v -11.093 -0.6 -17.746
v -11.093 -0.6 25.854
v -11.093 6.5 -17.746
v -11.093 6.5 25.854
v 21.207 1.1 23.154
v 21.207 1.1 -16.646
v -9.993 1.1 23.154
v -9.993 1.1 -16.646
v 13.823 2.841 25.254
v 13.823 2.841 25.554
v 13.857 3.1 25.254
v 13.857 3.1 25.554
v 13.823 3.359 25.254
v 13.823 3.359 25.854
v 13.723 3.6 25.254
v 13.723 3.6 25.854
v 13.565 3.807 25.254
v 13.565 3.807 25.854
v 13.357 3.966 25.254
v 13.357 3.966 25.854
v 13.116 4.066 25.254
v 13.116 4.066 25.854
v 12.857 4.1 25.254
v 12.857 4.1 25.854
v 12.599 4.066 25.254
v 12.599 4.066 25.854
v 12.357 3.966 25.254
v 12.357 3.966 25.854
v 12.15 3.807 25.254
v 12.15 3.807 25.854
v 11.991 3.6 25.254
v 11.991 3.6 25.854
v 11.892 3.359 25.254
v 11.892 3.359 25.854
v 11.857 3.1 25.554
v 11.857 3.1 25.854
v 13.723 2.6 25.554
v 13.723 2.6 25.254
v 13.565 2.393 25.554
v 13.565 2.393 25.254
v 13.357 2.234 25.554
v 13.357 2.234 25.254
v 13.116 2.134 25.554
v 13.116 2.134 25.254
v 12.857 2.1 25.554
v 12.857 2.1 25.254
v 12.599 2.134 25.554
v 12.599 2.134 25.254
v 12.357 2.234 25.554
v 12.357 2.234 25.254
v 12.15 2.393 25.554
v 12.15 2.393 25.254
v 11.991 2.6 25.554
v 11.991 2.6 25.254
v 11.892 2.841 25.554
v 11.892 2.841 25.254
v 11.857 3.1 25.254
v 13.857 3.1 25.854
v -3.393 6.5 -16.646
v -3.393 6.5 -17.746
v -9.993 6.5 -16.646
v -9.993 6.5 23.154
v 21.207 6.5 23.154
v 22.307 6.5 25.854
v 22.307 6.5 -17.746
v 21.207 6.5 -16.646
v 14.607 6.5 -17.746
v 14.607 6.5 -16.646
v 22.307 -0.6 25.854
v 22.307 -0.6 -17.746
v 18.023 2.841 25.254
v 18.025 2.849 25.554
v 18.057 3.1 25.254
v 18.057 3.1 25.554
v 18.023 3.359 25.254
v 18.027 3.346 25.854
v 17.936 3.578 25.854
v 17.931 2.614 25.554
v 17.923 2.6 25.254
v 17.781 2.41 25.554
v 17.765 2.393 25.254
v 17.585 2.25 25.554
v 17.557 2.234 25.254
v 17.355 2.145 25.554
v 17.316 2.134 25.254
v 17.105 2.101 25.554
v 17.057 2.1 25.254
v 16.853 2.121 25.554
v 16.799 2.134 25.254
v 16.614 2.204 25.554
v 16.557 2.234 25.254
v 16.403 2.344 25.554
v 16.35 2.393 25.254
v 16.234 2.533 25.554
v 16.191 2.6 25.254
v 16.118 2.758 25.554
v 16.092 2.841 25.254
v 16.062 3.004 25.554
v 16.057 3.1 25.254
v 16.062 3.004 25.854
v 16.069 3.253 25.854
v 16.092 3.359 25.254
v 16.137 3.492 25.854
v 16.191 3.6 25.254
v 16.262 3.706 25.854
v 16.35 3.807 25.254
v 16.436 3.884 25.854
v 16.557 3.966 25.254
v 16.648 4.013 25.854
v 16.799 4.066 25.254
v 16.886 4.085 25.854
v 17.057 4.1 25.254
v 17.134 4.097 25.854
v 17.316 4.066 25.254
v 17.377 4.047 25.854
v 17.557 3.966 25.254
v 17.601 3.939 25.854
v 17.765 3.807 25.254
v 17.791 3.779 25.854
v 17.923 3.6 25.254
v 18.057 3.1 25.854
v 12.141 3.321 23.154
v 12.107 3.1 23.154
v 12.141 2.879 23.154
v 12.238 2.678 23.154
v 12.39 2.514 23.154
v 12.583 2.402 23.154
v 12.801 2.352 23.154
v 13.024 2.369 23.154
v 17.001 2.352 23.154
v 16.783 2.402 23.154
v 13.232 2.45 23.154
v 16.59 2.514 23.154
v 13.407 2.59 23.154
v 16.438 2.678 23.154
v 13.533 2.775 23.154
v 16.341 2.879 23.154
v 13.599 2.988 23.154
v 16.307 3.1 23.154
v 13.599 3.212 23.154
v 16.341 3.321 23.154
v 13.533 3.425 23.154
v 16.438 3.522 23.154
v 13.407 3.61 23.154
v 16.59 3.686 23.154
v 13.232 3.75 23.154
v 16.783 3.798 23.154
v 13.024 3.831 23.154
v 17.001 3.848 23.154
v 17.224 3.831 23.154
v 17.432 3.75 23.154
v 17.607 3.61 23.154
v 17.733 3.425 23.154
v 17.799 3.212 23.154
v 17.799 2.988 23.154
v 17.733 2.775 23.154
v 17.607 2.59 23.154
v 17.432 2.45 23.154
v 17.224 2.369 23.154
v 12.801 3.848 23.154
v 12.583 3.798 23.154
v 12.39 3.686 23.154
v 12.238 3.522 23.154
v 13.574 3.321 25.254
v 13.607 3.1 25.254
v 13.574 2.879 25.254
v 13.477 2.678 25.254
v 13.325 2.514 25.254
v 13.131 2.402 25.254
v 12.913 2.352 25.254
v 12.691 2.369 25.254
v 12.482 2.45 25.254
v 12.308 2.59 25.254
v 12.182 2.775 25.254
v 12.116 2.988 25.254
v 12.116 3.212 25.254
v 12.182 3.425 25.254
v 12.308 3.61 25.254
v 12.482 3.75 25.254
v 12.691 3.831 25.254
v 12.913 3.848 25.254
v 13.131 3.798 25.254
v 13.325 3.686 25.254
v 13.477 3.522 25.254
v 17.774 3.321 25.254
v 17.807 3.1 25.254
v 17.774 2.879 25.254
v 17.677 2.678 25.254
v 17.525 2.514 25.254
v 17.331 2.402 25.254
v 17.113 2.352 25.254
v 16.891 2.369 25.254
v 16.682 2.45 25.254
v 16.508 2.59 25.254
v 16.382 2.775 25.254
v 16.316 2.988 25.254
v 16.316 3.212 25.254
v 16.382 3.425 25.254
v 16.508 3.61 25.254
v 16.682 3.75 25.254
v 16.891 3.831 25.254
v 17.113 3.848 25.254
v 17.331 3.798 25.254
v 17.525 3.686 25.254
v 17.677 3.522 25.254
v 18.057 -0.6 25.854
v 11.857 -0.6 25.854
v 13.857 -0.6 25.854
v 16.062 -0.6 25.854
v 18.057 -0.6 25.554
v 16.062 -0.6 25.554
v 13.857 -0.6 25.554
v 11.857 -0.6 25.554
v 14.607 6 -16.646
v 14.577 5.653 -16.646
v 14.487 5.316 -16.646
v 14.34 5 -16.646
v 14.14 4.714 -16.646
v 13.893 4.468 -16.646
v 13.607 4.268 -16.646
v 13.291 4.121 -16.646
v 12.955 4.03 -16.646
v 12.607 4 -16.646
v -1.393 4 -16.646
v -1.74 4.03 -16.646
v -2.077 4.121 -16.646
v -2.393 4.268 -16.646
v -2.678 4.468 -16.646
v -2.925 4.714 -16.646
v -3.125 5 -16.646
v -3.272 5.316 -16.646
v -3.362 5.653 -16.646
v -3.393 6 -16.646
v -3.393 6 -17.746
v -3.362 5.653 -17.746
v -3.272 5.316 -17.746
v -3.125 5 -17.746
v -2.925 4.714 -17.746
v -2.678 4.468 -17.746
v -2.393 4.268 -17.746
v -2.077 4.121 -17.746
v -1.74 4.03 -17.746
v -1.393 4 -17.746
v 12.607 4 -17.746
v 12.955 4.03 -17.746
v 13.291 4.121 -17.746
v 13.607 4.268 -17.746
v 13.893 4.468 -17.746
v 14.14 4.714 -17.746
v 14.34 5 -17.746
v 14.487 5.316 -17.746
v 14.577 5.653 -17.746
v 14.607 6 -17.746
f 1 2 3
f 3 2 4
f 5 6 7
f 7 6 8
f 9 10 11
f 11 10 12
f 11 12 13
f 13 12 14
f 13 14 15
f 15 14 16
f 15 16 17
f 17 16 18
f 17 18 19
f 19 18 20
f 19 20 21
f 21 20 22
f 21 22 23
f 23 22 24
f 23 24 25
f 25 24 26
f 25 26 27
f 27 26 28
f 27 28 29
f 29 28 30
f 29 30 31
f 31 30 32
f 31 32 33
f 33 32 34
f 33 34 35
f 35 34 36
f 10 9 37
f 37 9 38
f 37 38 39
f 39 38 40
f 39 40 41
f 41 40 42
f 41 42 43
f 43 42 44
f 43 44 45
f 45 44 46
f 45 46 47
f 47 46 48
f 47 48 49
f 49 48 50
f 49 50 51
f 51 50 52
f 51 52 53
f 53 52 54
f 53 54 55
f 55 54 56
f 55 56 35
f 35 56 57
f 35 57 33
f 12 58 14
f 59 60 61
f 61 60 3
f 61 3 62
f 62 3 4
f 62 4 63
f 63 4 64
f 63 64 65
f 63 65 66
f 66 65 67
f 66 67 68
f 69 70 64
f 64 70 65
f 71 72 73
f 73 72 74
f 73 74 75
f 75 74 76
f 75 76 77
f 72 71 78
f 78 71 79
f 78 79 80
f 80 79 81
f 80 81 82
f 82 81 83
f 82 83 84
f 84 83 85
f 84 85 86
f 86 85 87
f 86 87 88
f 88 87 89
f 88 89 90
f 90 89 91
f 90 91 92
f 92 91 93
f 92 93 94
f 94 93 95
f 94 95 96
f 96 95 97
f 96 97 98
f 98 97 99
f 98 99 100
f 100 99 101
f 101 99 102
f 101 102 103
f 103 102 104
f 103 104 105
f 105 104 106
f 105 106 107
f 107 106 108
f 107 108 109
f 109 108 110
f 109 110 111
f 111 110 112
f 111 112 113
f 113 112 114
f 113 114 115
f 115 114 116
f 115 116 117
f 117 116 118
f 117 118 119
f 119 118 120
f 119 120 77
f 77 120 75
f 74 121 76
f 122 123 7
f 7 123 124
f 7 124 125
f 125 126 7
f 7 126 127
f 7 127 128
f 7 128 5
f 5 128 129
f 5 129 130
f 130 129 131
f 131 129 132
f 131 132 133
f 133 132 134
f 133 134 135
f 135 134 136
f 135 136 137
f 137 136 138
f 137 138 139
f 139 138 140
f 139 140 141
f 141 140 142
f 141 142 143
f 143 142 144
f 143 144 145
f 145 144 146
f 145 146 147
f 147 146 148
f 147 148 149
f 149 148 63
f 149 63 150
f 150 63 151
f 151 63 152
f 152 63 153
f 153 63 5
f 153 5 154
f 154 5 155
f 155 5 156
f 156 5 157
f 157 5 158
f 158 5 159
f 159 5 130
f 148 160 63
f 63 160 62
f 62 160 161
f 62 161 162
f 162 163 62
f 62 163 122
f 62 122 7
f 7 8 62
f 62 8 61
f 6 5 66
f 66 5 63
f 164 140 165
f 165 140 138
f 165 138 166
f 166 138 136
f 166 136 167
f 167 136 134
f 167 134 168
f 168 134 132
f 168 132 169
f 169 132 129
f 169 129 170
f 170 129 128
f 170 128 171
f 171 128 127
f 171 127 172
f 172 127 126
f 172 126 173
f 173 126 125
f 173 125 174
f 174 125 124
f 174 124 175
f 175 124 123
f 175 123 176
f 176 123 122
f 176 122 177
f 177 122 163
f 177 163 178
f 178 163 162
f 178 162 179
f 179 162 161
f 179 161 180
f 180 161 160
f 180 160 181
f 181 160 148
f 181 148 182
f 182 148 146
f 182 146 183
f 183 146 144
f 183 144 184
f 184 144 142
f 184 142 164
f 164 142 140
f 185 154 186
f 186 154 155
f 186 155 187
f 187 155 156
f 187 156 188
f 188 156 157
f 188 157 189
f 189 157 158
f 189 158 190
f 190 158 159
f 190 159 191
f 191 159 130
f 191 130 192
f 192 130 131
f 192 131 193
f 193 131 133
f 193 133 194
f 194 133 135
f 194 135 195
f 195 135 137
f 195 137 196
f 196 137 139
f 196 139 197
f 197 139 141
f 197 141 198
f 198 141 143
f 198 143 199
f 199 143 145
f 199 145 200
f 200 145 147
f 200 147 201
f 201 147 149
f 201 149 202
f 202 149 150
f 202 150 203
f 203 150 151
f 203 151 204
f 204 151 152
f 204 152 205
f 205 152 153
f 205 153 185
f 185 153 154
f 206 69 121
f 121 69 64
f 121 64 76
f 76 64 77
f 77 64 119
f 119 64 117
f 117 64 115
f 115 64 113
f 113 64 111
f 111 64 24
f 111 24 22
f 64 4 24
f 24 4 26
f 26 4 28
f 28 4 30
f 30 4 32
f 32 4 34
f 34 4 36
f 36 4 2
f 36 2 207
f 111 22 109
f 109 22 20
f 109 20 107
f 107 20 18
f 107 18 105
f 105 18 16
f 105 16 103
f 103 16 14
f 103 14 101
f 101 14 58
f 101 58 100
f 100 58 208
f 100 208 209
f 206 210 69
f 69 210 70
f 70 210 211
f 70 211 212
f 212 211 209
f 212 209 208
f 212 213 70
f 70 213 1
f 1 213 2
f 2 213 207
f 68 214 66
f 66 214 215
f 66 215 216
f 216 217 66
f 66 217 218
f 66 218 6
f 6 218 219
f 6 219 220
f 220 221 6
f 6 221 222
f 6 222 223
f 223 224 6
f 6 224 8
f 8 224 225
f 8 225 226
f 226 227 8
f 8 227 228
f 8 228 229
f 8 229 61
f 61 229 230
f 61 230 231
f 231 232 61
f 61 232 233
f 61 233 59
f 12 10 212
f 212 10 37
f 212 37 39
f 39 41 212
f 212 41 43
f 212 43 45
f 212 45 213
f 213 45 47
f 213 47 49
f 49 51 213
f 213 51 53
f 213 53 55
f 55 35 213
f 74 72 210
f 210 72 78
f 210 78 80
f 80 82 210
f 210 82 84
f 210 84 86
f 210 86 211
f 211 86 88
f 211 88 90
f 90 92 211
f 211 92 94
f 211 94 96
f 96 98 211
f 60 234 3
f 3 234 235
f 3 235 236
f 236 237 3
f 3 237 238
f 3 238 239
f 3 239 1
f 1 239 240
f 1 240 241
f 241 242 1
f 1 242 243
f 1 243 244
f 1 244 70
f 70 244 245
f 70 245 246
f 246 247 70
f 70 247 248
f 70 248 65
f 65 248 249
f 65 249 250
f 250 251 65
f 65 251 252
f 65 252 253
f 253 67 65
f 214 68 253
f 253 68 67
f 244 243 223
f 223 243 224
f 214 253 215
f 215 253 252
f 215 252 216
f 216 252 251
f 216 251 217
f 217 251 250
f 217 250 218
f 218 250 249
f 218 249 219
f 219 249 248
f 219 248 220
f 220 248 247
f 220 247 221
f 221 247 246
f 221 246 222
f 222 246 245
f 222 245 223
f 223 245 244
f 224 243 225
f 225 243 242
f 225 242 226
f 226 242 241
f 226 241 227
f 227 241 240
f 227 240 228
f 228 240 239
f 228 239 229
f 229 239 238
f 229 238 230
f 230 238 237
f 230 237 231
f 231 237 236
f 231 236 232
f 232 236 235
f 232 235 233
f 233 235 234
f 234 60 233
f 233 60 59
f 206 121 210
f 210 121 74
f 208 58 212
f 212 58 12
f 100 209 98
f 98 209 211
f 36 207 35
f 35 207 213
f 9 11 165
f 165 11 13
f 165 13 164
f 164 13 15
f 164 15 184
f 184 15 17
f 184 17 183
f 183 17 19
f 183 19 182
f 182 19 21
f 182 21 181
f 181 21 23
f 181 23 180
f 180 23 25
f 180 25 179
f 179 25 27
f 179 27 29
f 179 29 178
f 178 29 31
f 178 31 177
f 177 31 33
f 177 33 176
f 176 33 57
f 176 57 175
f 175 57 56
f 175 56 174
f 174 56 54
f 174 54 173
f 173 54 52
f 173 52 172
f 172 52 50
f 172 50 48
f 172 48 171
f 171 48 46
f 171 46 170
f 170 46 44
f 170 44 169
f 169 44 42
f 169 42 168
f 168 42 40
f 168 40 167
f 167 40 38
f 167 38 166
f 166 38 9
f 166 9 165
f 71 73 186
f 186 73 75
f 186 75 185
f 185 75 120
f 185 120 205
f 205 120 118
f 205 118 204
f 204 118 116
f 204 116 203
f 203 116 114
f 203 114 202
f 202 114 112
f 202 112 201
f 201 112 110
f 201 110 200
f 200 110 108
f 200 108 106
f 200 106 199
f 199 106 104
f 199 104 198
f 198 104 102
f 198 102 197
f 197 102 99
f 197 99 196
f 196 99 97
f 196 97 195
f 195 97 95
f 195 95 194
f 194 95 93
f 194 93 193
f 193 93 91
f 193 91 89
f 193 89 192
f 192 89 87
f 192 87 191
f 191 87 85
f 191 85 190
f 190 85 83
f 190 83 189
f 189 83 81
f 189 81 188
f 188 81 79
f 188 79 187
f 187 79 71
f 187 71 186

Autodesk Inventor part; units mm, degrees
ref_plane "YZ Plane" through (0, 0, 0) normal (1, 0, 0) x (0, 1, 0)
ref_plane "XZ Plane" through (0, 0, 0) normal (0, 1, 0) x (-1, 0, 0)
ref_plane "XY Plane" through (0, 0, 0) normal (0, 0, 1) x (1, 0, 0)
sketch "Sketch2" plane through (0, 0, 0) normal (0, 1, 0) x (-1, 0, 0)
  line L0 (11.092548, -17.745585) -> (-22.307452, -17.745585)
  line L1 (-22.307452, -17.745585) -> (-22.307452, 24.254415)
  line L2 (-22.307452, 24.254415) -> (11.092548, 24.254415)
  line L3 (11.092548, 24.254415) -> (11.092548, -17.745585)
  point P0 (0, 0)
  dimension "d2" = 42
  dimension "d3" = 33.4
sketch "Sketch2 outline for Extrusion1" plane through (0, 0, 0) normal (0, 1, 0) x (-1, 0, 0)
  line L0 (11.092548, -17.745585) -> (11.092548, 24.254415)
  line L1 (-22.307452, -17.745585) -> (11.092548, -17.745585)
  line L2 (-22.307452, 24.254415) -> (-22.307452, -17.745585)
  line L3 (11.092548, 24.254415) -> (-22.307452, 24.254415)
extrude "Extrusion1" add sketch "Sketch2 outline for Extrusion1" along normal blind 6
sketch "Sketch3" plane through (0, 6, 0) normal (0, 1, 0) x (1, 0, 0)
  line L0 (-9.992548, 16.645585) -> (21.207452, 16.645585)
  line L1 (21.207452, 16.645585) -> (21.207452, -23.154415)
  line L2 (21.207452, -23.154415) -> (-9.992548, -23.154415)
  line L3 (-9.992548, -23.154415) -> (-9.992548, 16.645585)
  line L4 (22.307452, 17.745585) -> (-11.092548, 17.745585)
  line L5 (-11.092548, 17.745585) -> (-11.092548, -24.254415)
  line L6 (22.307452, -24.254415) -> (22.307452, 17.745585)
  line L7 (-11.092548, -24.254415) -> (22.307452, -24.254415)
  point P0 (0, 0)
  dimension "d6" = 1.1
  dimension "d7" = 1.1
  dimension "d8" = 1.1
  dimension "d9" = 1.1
  dimension "d10" = 39.8
sketch "Sketch3 outline for Extrusion2" plane through (0, 6, 0) normal (0, 1, 0) x (1, 0, 0)
  line L0 (-9.992548, 16.645585) -> (-9.992548, -23.154415)
  line L1 (21.207452, 16.645585) -> (-9.992548, 16.645585)
  line L2 (21.207452, -23.154415) -> (21.207452, 16.645585)
  line L3 (-9.992548, -23.154415) -> (21.207452, -23.154415)
extrude "Extrusion2" cut sketch "Sketch3 outline for Extrusion2" against normal blind 4.9
sketch "Sketch4" plane through (0, 0, 0) normal (0, -1, 0) x (1, 0, 0)
  line L0 (22.307452, -17.745585) -> (-11.092548, -17.745585)
  line L1 (-11.092548, -17.745585) -> (-11.092548, 24.254415)
  line L2 (22.307452, -17.745585) -> (-11.092548, -17.745585)
  line L3 (-11.092548, -17.745585) -> (-11.092548, 24.254415)
  line L4 (-11.092548, 24.254415) -> (22.307452, 24.254415)
  line L5 (22.307452, 24.254415) -> (22.307452, -17.745585)
  point P0 (0, 0)
sketch "Sketch4 outline for Extrusion3" plane through (0, 0, 0) normal (0, -1, 0) x (1, 0, 0)
  line L0 (22.307452, -17.745585) -> (22.307452, 24.254415)
  line L1 (-11.092548, -17.745585) -> (22.307452, -17.745585)
  line L2 (-11.092548, 24.254415) -> (-11.092548, -17.745585)
  line L3 (22.307452, 24.254415) -> (-11.092548, 24.254415)
extrude "Extrusion3" add sketch "Sketch4 outline for Extrusion3" along normal blind 0.6
sketch "Sketch5" plane through (-11.092548, 6, 24.254415) normal (0, 0, 1) x (1, 0, 0)
  line L0 (33.4, -6.6) -> (33.4, 0) projected
  line L1 (33.4, -6.6) -> (0, -6.6)
  line L2 (0, -6.6) -> (0, -2.5)
  line L3 (0, -2.5) -> (33.4, -2.5)
  line L4 (33.4, -2.5) -> (33.4, -6.6)
  point P0 (11.092548, -6)
  point P1 (33.4, -2.5)
sketch "Sketch5 outline for Extrusion4" plane through (-11.092548, 6, 24.254415) normal (0, 0, 1) x (1, 0, 0)
  line L0 (33.4, -2.5) -> (0, -2.5)
  line L1 (33.4, -6.6) -> (33.4, -2.5)
  line L2 (0, -6.6) -> (33.4, -6.6)
  line L3 (0, -2.5) -> (0, -6.6)
extrude "Extrusion4" add sketch "Sketch5 outline for Extrusion4" along normal blind 3
sketch "Sketch6" plane through (21.207452, 6, 23.154415) normal (0, 0, -1) x (-1, 0, 0)
  line L0 (3.6, -0.9) -> (4.9, -0.9)
  line L1 (4.9, -0.9) -> (4.9, -3.9)
  line L2 (4.9, -3.9) -> (3.6, -3.9)
  line L3 (3.6, -3.9) -> (3.6, -0.9)
  line L4 (0, -4.9) -> (31.2, -4.9) projected
  line L5 (5.6, -0.9) -> (6.9, -0.9)
  line L6 (6.9, -0.9) -> (6.9, -3.9)
  line L7 (6.9, -3.9) -> (5.6, -3.9)
  line L8 (5.6, -3.9) -> (5.6, -0.9)
  line L9 (7.6, -0.9) -> (8.9, -0.9)
  line L10 (8.9, -0.9) -> (8.9, -3.9)
  line L11 (8.9, -3.9) -> (7.6, -3.9)
  line L12 (7.6, -3.9) -> (7.6, -0.9)
  point P0 (21.207452, -6)
  point P1 (0, 0)
  dimension "d17" = 3
  dimension "d18" = 1.3
  dimension "d19" = 3.6
  dimension "d20" = 1
  dimension "d23" = 3
  dimension "d24" = 1.3
  dimension "d25" = 3
  dimension "d26" = 1.3
  dimension "d27" = 1
  dimension "d28" = 1
  dimension "d29" = 0.7
  dimension "d30" = 0.7
sketch "Sketch7" plane through (-11.092548, 3.5, 24.254415) normal (0, 1, 0) x (1, 0, 0)
  line L0 (0, 0) -> (33.4, 0) projected
  line L1 (0, 42) -> (0, -3) projected
  line L2 (33.4, 0) -> (0, 0)
  line L3 (0, 0) -> (0, -3)
  line L4 (0, -3) -> (33.4, -3)
  line L5 (33.4, -3) -> (33.4, 0)
  point P0 (11.092548, 24.254415)
sketch "Sketch7 outline for Extrusion5" plane through (-11.092548, 3.5, 24.254415) normal (0, 1, 0) x (1, 0, 0)
  line L0 (33.4, -3) -> (33.4, 0)
  line L1 (0, -3) -> (33.4, -3)
  line L2 (0, 0) -> (0, -3)
  line L3 (33.4, 0) -> (0, 0)
extrude "Extrusion5" add sketch "Sketch7 outline for Extrusion5" along normal blind 2.5
sketch "Sketch6 outline for Extrusion6" plane through (21.207452, 6, 23.154415) normal (0, 0, -1) x (-1, 0, 0)
  line L0 (7.6, -0.9) -> (7.6, -3.9)
  line L1 (8.9, -0.9) -> (7.6, -0.9)
  line L2 (8.9, -3.9) -> (8.9, -0.9)
  line L3 (7.6, -3.9) -> (8.9, -3.9)
  line L4 (5.6, -0.9) -> (5.6, -3.9)
  line L5 (6.9, -0.9) -> (5.6, -0.9)
  line L6 (6.9, -3.9) -> (6.9, -0.9)
  line L7 (5.6, -3.9) -> (6.9, -3.9)
  line L8 (3.6, -0.9) -> (3.6, -3.9)
  line L9 (4.9, -0.9) -> (3.6, -0.9)
  line L10 (4.9, -3.9) -> (4.9, -0.9)
  line L11 (3.6, -3.9) -> (4.9, -3.9)
extrude "Extrusion6" cut sketch "Sketch6 outline for Extrusion6" against normal through all
sketch "Sketch8" plane through (0, 6, 0) normal (0, 1, 0) x (1, 0, 0)
  point P0 (0, 0)
sketch "Sketch9" plane through (16.307452, 2.1, 23.154415) normal (0, 1, 0) x (1, 0, 0)
  line L0 (1.3, 0) -> (1.3, -4.1)
  line L1 (0, 0) -> (0, -4.1)
  line L2 (1.3, -2.3) -> (0, -2.3)
  line L3 (0, -2.3) -> (0, -2)
  line L4 (0, -2) -> (1.3, -2)
  line L5 (1.3, -2) -> (1.3, -2.3)
  line L6 (0, 0) -> (1.3, 0)
  line L7 (-0.7, -2.311138) -> (-2, -2.311138)
  line L8 (-2, -2.311138) -> (-2, -2.011138)
  line L9 (-2, -2.011138) -> (-0.7, -2.011138)
  line L10 (-0.7, -2.011138) -> (-0.7, -2.311138)
  line L11 (-0.7, 0) -> (-0.7, -4.1)
  line L12 (-2, 0) -> (-0.7, 0)
  line L13 (-2.7, -2.3) -> (-4, -2.3)
  line L14 (-4, -2) -> (-2.7, -2)
  line L15 (-2.7, -2) -> (-2.7, -2.3)
  line L16 (-4, -2.3) -> (-4, -2)
  line L17 (-4, 0) -> (-2.7, 0)
  point P0 (-16.307452, 23.154415)
  point P1 (1.3, -2)
  point P2 (0, -2.3)
  dimension "d33" = 0.3
  dimension "d34" = 2
  dimension "d35" = 0.3
  dimension "d36" = 1.3
  dimension "d37" = 0
  dimension "d38" = 2.01114
  dimension "d39" = 0.3
  dimension "d40" = 1.3
  dimension "d41" = 0
  dimension "d42" = 2
sketch "Sketch9 outline for Extrusion7" plane through (16.307452, 2.1, 23.154415) normal (0, 1, 0) x (1, 0, 0)
  line L0 (-4, -2) -> (-4, -2.3)
  line L1 (-2.7, -2) -> (-4, -2)
  line L2 (-2.7, -2.3) -> (-2.7, -2)
  line L3 (-4, -2.3) -> (-2.7, -2.3)
  line L4 (-2, -2.011138) -> (-2, -2.311138)
  line L5 (-0.7, -2.011138) -> (-2, -2.011138)
  line L6 (-0.7, -2.311138) -> (-0.7, -2.011138)
  line L7 (-2, -2.311138) -> (-0.7, -2.311138)
  line L8 (1.3, -2) -> (0, -2)
  line L9 (1.3, -2.3) -> (1.3, -2)
  line L10 (0, -2.3) -> (1.3, -2.3)
  line L11 (0, -2) -> (0, -2.3)
extrude "Extrusion7" add sketch "Sketch9 outline for Extrusion7" along normal up to surface (3.9 mm away)
sketch "Sketch10" plane through (0, 6, 0) normal (0, 1, 0) x (1, 0, 0)
  line L0 (17.607452, -25.654415) -> (16.307452, -25.654415)
  line L1 (16.307452, -25.654415) -> (16.307452, -24.654415)
  line L2 (16.307452, -24.654415) -> (17.607452, -24.654415)
  line L3 (17.607452, -24.654415) -> (17.607452, -25.654415)
  line L4 (21.207452, -23.154415) -> (-9.992548, -23.154415)
  line L5 (13.607452, -25.654415) -> (12.307452, -25.654415)
  line L6 (12.307452, -25.654415) -> (12.307452, -24.654415)
  line L7 (12.307452, -24.654415) -> (13.607452, -24.654415)
  line L8 (13.607452, -24.654415) -> (13.607452, -25.654415)
  line L9 (15.607452, -25.654415) -> (14.307452, -25.654415)
  line L10 (14.307452, -25.654415) -> (14.307452, -24.654415)
  line L11 (14.307452, -24.654415) -> (15.607452, -24.654415)
  line L12 (15.607452, -24.654415) -> (15.607452, -25.654415)
  line L13 (13.607452, -25.454415) -> (13.607452, -27.254415)
  point P0 (0, 0)
  point P1 (17.607452, -23.154415)
  point P2 (15.607452, -27.254415)
  dimension "d45" = 1.3
  dimension "d46" = 1
  dimension "d47" = 0
  dimension "d48" = 1.5
  dimension "d49" = 1.3
  dimension "d50" = 1
  dimension "d51" = 1.3
  dimension "d52" = 1
  dimension "d53" = 1.5
  dimension "d54" = 1.5
  dimension "d55" = 0
  dimension "d56" = 0
sketch "Sketch10 outline for Extrusion8" plane through (0, 6, 0) normal (0, 1, 0) x (1, 0, 0)
  line L0 (13.607452, -24.654415) -> (12.307452, -24.654415)
  line L1 (13.607452, -25.654415) -> (13.607452, -24.654415)
  line L2 (12.307452, -25.654415) -> (13.607452, -25.654415)
  line L3 (12.307452, -24.654415) -> (12.307452, -25.654415)
  line L4 (15.607452, -25.654415) -> (15.607452, -24.654415)
  line L5 (14.307452, -25.654415) -> (15.607452, -25.654415)
  line L6 (14.307452, -24.654415) -> (14.307452, -25.654415)
  line L7 (15.607452, -24.654415) -> (14.307452, -24.654415)
  line L8 (17.607452, -25.654415) -> (17.607452, -24.654415)
  line L9 (16.307452, -25.654415) -> (17.607452, -25.654415)
  line L10 (16.307452, -24.654415) -> (16.307452, -25.654415)
  line L11 (17.607452, -24.654415) -> (16.307452, -24.654415)
extrude "Extrusion8" cut sketch "Sketch10 outline for Extrusion8" against normal blind 1.5
sketch "Sketch11" plane through (-11.092548, 6, 27.254415) normal (0, 0, 1) x (1, 0, 0)
  line L0 (28.7, 0) -> (28.7, -0.9) projected
  line L1 (27.4, -3.9) -> (27.4, -0.9) projected
  line L2 (28.7, -0.9) -> (27.4, -0.9)
  line L3 (27.4, -0.9) -> (27.4, -1.7)
  line L4 (27.4, -1.7) -> (28.7, -1.7)
  line L5 (28.7, -1.7) -> (28.7, -0.9)
  line L6 (26.7, 0) -> (26.7, -0.9) projected
  line L7 (25.4, -3.9) -> (25.4, -1.5) projected
  line L8 (26.7, -0.9) -> (25.4, -0.9)
  line L9 (25.4, -0.9) -> (25.4, -1.7)
  line L10 (25.4, -1.7) -> (26.7, -1.7)
  line L11 (26.7, -1.7) -> (26.7, -0.9)
  line L12 (24.7, -0.9) -> (24.7, -3.9) projected
  line L13 (23.4, -3.9) -> (23.4, -0.9) projected
  line L14 (24.7, -0.9) -> (23.4, -0.9)
  line L15 (23.4, -0.9) -> (23.4, -1.7)
  line L16 (23.4, -1.7) -> (24.7, -1.7)
  line L17 (24.7, -1.7) -> (24.7, -0.9)
  point P0 (11.092548, -6)
  point P1 (24.7, -1.7)
  dimension "d59" = 0.8
sketch "Sketch11 outline for Extrusion9" plane through (-11.092548, 6, 27.254415) normal (0, 0, 1) x (1, 0, 0)
  line L0 (24.7, -0.9) -> (23.4, -0.9)
  line L1 (24.7, -1.7) -> (24.7, -0.9)
  line L2 (23.4, -1.7) -> (24.7, -1.7)
  line L3 (23.4, -0.9) -> (23.4, -1.7)
  line L4 (26.7, -0.9) -> (25.4, -0.9)
  line L5 (25.4, -0.9) -> (25.4, -1.7)
  line L6 (25.4, -1.7) -> (26.7, -1.7)
  line L7 (26.7, -1.7) -> (26.7, -0.9)
  line L8 (28.7, -0.9) -> (27.4, -0.9)
  line L9 (28.7, -1.7) -> (28.7, -0.9)
  line L10 (27.4, -1.7) -> (28.7, -1.7)
  line L11 (27.4, -0.9) -> (27.4, -1.7)
extrude "Extrusion9" add sketch "Sketch11 outline for Extrusion9" against normal up to surface (1.6 mm away)
sketch "Sketch12" plane through (0, 6, 0) normal (0, 1, 0) x (1, 0, 0)
  line L0 (-11.092548, -27.254415) -> (22.307452, -27.254415)
  line L1 (-11.092548, 17.745585) -> (-11.092548, -27.254415)
  line L2 (22.307452, -27.254415) -> (-11.092548, -27.254415)
  line L3 (-11.092548, -27.254415) -> (-11.092548, -26.754415)
  line L4 (-11.092548, -26.754415) -> (22.307452, -26.754415)
  line L5 (22.307452, -26.754415) -> (22.307452, -27.254415)
  line L6 (17.607452, -25.654415) -> (16.307452, -25.654415)
  point P0 (0, 0)
  dimension "d62" = 1.1
sketch "Sketch12 outline for Extrusion10" plane through (0, 6, 0) normal (0, 1, 0) x (1, 0, 0)
  line L0 (22.307452, -27.254415) -> (22.307452, -26.754415)
  line L1 (-11.092548, -27.254415) -> (22.307452, -27.254415)
  line L2 (-11.092548, -26.754415) -> (-11.092548, -27.254415)
  line L3 (22.307452, -26.754415) -> (-11.092548, -26.754415)
extrude "Extrusion10" cut sketch "Sketch12 outline for Extrusion10" against normal through all
sketch "Sketch13" plane through (-11.092548, 6, 26.754415) normal (0, 0, 1) x (1, 0, 0)
  line L0 (23.4, -1.7) -> (23.4, -3.9) projected
  line L1 (24.7, -3.9) -> (24.7, -1.7) projected
  line L2 (23.4, -1.7) -> (24.7, -1.7)
  line L3 (24.7, -1.7) -> (24.7, -3.9)
  line L4 (24.7, -3.9) -> (23.4, -3.9)
  line L5 (23.4, -3.9) -> (23.4, -1.7)
  line L6 (26.7, -1.7) -> (25.4, -1.7) projected
  line L7 (25.4, -3.9) -> (26.7, -3.9) projected
  line L8 (25.4, -1.7) -> (26.7, -1.7)
  line L9 (26.7, -1.7) -> (26.7, -3.9)
  line L10 (26.7, -3.9) -> (25.4, -3.9)
  line L11 (25.4, -3.9) -> (25.4, -1.7)
  line L12 (27.4, -3.9) -> (27.4, -1.5) projected
  line L13 (28.7, -3.9) -> (28.7, -0.9) projected
  line L14 (27.4, -1.7) -> (28.7, -1.7)
  line L15 (28.7, -1.7) -> (28.7, -3.9)
  line L16 (28.7, -3.9) -> (27.4, -3.9)
  line L17 (27.4, -3.9) -> (27.4, -1.7)
  point P0 (11.092548, -6)
  point P1 (28.7, -1.7)
sketch "Sketch13 outline for Extrusion11" plane through (-11.092548, 6, 26.754415) normal (0, 0, 1) x (1, 0, 0)
  line L0 (27.4, -3.9) -> (28.7, -3.9)
  line L1 (27.4, -1.7) -> (27.4, -3.9)
  line L2 (28.7, -1.7) -> (27.4, -1.7)
  line L3 (28.7, -3.9) -> (28.7, -1.7)
  line L4 (26.7, -3.9) -> (26.7, -1.7)
  line L5 (25.4, -3.9) -> (26.7, -3.9)
  line L6 (25.4, -1.7) -> (25.4, -3.9)
  line L7 (26.7, -1.7) -> (25.4, -1.7)
  line L8 (24.7, -1.7) -> (23.4, -1.7)
  line L9 (24.7, -3.9) -> (24.7, -1.7)
  line L10 (23.4, -3.9) -> (24.7, -3.9)
  line L11 (23.4, -1.7) -> (23.4, -3.9)
extrude "Extrusion11" cut sketch "Sketch13 outline for Extrusion11" against normal through all
sketch "Sketch14" plane through (0, -0.6, 0) normal (0, -1, 0) x (1, 0, 0)
  point P0 (0, 0)
sketch "Sketch15" plane through (22.307452, 6, -17.745585) normal (0, 0, -1) x (-1, 0, 0)
  line L0 (6, -3.9) -> (6, -1.7) projected
  line L1 (4.7, -3.9) -> (6, -3.9) projected
  line L2 (6, -1.7) -> (4.7, -1.7)
  line L3 (4.7, -1.7) -> (4.7, -3.9)
  line L4 (4.7, -3.9) -> (6, -3.9)
  line L5 (6, -3.9) -> (6, -1.7)
  line L6 (6.7, -1.7) -> (8, -1.7) projected
  line L7 (6.7, -1.7) -> (6.7, -3.9) projected
  line L8 (8, -1.7) -> (6.7, -1.7)
  line L9 (6.7, -1.7) -> (6.7, -3.9)
  line L10 (6.7, -3.9) -> (8, -3.9)
  line L11 (8, -3.9) -> (8, -1.7)
  line L12 (10, -1.7) -> (10, -3.9) projected
  line L13 (8.7, -3.9) -> (10, -3.9) projected
  line L14 (10, -1.7) -> (8.7, -1.7)
  line L15 (8.7, -1.7) -> (8.7, -3.9)
  line L16 (8.7, -3.9) -> (10, -3.9)
  line L17 (10, -3.9) -> (10, -1.7)
  point P0 (22.307452, -6)
sketch "Sketch15 outline for Extrusion12" plane through (22.307452, 6, -17.745585) normal (0, 0, -1) x (-1, 0, 0)
  line L0 (8.7, -1.7) -> (8.7, -3.9)
  line L1 (10, -1.7) -> (8.7, -1.7)
  line L2 (10, -3.9) -> (10, -1.7)
  line L3 (8.7, -3.9) -> (10, -3.9)
  line L4 (8, -3.9) -> (8, -1.7)
  line L5 (6.7, -3.9) -> (8, -3.9)
  line L6 (6.7, -1.7) -> (6.7, -3.9)
  line L7 (8, -1.7) -> (6.7, -1.7)
  line L8 (4.7, -1.7) -> (4.7, -3.9)
  line L9 (6, -1.7) -> (4.7, -1.7)
  line L10 (6, -3.9) -> (6, -1.7)
  line L11 (4.7, -3.9) -> (6, -3.9)
extrude "Extrusion12" add sketch "Sketch15 outline for Extrusion12" against normal blind 1.1
sketch "Sketch16" plane through (0, 6, 0) normal (0, 1, 0) x (1, 0, 0)
  line L0 (17.607452, -25.654415) -> (16.307452, -25.654415)
  line L1 (17.607452, -24.654415) -> (16.307452, -24.654415)
  line L2 (16.307452, -25.654415) -> (17.607452, -25.654415)
  line L3 (17.607452, -25.654415) -> (17.607452, -24.654415)
  line L4 (17.607452, -24.654415) -> (16.307452, -24.654415)
  line L5 (16.307452, -24.654415) -> (16.307452, -25.654415)
  line L6 (15.607452, -24.654415) -> (14.307452, -24.654415)
  line L7 (14.307452, -25.654415) -> (15.607452, -25.654415)
  line L8 (15.607452, -25.654415) -> (15.607452, -24.654415)
  line L9 (15.607452, -24.654415) -> (14.307452, -24.654415)
  line L10 (14.307452, -24.654415) -> (14.307452, -25.654415)
  line L11 (13.607452, -25.654415) -> (12.307452, -25.654415)
  line L12 (13.607452, -24.654415) -> (13.607452, -25.654415)
  line L13 (12.307452, -25.654415) -> (13.607452, -25.654415)
  line L14 (13.607452, -25.654415) -> (13.607452, -24.654415)
  line L15 (13.607452, -24.654415) -> (12.307452, -24.654415)
  line L16 (12.307452, -24.654415) -> (12.307452, -25.654415)
  point P0 (0, 0)
sketch "Sketch16 outline for Extrusion13" plane through (0, 6, 0) normal (0, 1, 0) x (1, 0, 0)
  line L0 (12.307452, -24.654415) -> (12.307452, -25.654415)
  line L1 (13.607452, -24.654415) -> (12.307452, -24.654415)
  line L2 (13.607452, -25.654415) -> (13.607452, -24.654415)
  line L3 (12.307452, -25.654415) -> (13.607452, -25.654415)
  line L4 (15.607452, -25.654415) -> (15.607452, -24.654415)
  line L5 (14.307452, -25.654415) -> (15.607452, -25.654415)
  line L6 (14.307452, -24.654415) -> (14.307452, -25.654415)
  line L7 (15.607452, -24.654415) -> (14.307452, -24.654415)
  line L8 (17.607452, -25.654415) -> (17.607452, -24.654415)
  line L9 (16.307452, -25.654415) -> (17.607452, -25.654415)
  line L10 (16.307452, -24.654415) -> (16.307452, -25.654415)
  line L11 (17.607452, -24.654415) -> (16.307452, -24.654415)
extrude "Extrusion13" cut sketch "Sketch16 outline for Extrusion13" against normal up to surface (3.9 mm away)
sketch "Sketch17" plane through (0, 6, 0) normal (0, 1, 0) x (1, 0, 0)
  line L0 (22.307452, -26.754415) -> (22.307452, 17.745585)
  line L1 (-11.092548, 17.745585) -> (-11.092548, -26.754415)
  line L2 (22.307452, -26.754415) -> (-11.092548, -26.754415)
  line L3 (-11.092548, -26.754415) -> (-11.092548, -25.654415)
  line L4 (-11.092548, -25.654415) -> (22.307452, -25.654415)
  line L5 (22.307452, -25.654415) -> (22.307452, -26.754415)
  point P0 (0, 0)
  dimension "d71" = 1.1
sketch "Sketch17 outline for Extrusion14" plane through (0, 6, 0) normal (0, 1, 0) x (1, 0, 0)
  line L0 (-11.092548, -26.754415) -> (22.307452, -26.754415)
  line L1 (-11.092548, -25.654415) -> (-11.092548, -26.754415)
  line L2 (22.307452, -25.654415) -> (-11.092548, -25.654415)
  line L3 (22.307452, -26.754415) -> (22.307452, -25.654415)
extrude "Extrusion14" cut sketch "Sketch17 outline for Extrusion14" against normal through all
sketch "Sketch18" plane through (-11.092548, 6, 25.654415) normal (0, 0, 1) x (1, 0, 0)
  line L0 (27.4, -3.9) -> (28.7, -3.9) projected
  line L1 (32.3, 0) -> (1.1, 0) projected
  line L2 (28.7, -3.9) -> (28.9, -3.9)
  line L3 (28.9, -3.9) -> (28.9, 0)
  line L4 (28.9, 0) -> (28.7, 0)
  line L5 (28.7, 0) -> (28.7, -3.9)
  line L6 (23.4, -3.9) -> (24.7, -3.9) projected
  line L7 (23.4, -3.9) -> (23.2, -3.9)
  line L8 (23.2, -3.9) -> (23.2, 0)
  line L9 (23.2, 0) -> (23.4, 0)
  line L10 (23.4, 0) -> (23.4, -3.9)
  point P0 (11.092548, -6)
  point P1 (23.2, 0)
  dimension "d74" = 0.2
  dimension "d75" = 0.2
sketch "Sketch18 outline for Extrusion15" plane through (-11.092548, 6, 25.654415) normal (0, 0, 1) x (1, 0, 0)
  line L0 (23.2, -3.9) -> (23.4, -3.9)
  line L1 (23.2, 0) -> (23.2, -3.9)
  line L2 (23.4, 0) -> (23.2, 0)
  line L3 (23.4, -3.9) -> (23.4, 0)
  line L4 (28.7, -3.9) -> (28.9, -3.9)
  line L5 (28.7, 0) -> (28.7, -3.9)
  line L6 (28.9, 0) -> (28.7, 0)
  line L7 (28.9, -3.9) -> (28.9, 0)
extrude "Extrusion15" cut sketch "Sketch18 outline for Extrusion15" against normal up to surface (1 mm away)
sketch "Sketch19" plane through (-11.092548, -0.6, 25.654415) normal (0, 0, 1) x (1, 0, 0)
  line L0 (28.7, 5.7) -> (27.4, 5.7)
  line L1 (28.9, 2.7) -> (28.9, 6.6)
  line L2 (28.7, 5.7) -> (28.9, 5.7)
  line L3 (28.9, 5.7) -> (28.9, 2.798247)
  line L4 (28.9, 2.798247) -> (28.7, 2.798247)
  line L5 (28.7, 2.798247) -> (28.7, 5.7)
  line L6 (24.7, 5.7) -> (23.4, 5.7)
  line L7 (23.2, 6.6) -> (23.2, 2.7)
  line L8 (23.4, 5.7) -> (23.2, 5.7)
  line L9 (23.2, 5.7) -> (23.2, 2.7)
  line L10 (23.2, 2.7) -> (23.4, 2.7)
  line L11 (23.4, 2.7) -> (23.4, 5.7)
  point P0 (11.092548, 0.6)
sketch "Sketch19 outline for Extrusion16" plane through (-11.092548, -0.6, 25.654415) normal (0, 0, 1) x (1, 0, 0)
  line L0 (28.7, 5.7) -> (28.7, 2.798247)
  line L1 (28.9, 5.7) -> (28.7, 5.7)
  line L2 (28.9, 2.798247) -> (28.9, 5.7)
  line L3 (28.7, 2.798247) -> (28.9, 2.798247)
  line L4 (23.4, 2.7) -> (23.4, 5.7)
  line L5 (23.2, 2.7) -> (23.4, 2.7)
  line L6 (23.2, 5.7) -> (23.2, 2.7)
  line L7 (23.4, 5.7) -> (23.2, 5.7)
extrude "Extrusion16" cut sketch "Sketch19 outline for Extrusion16" against normal up to surface (42.3 mm away)
sketch "Sketch20" plane through (17.607452, 2.1, 24.654415) normal (0, 0, 1) x (1, 0, 0)
  line L0 (0.2, 0) -> (-1.3, 0) projected
  line L1 (-1.3, 3.9) -> (-1.3, 0) projected
  line L2 (0.2, 0) -> (-1.3, 0)
  line L3 (-1.3, 0) -> (-1.3, 3.9)
  line L4 (-1.3, 3.9) -> (0.2, 3.9)
  line L5 (0.2, 3.9) -> (0.2, 0)
  point P0 (-17.607452, -2.1)
sketch "Sketch21" plane through (17.607452, 2.1, 24.654415) normal (0, 0, 1) x (1, 0, 0)
  line L0 (0, 0) -> (0, 0.098247)
  line L1 (0.2, 0) -> (-1.3, 0)
  line L2 (0, 0.098247) -> (0.2, 0.098247)
  line L3 (0.2, 0.098247) -> (0.2, 0)
  line L4 (0.2, 0) -> (0, 0)
  line L5 (0, 0) -> (0, 0.098247)
  point P0 (-17.607452, -2.1)
sketch "Sketch21 outline for Extrusion17" plane through (17.607452, 2.1, 24.654415) normal (0, 0, 1) x (1, 0, 0)
  line L0 (0.2, 0) -> (0.2, 0.098247)
  line L1 (0, 0) -> (0.2, 0)
  line L2 (0, 0.098247) -> (0, 0)
  line L3 (0.2, 0.098247) -> (0, 0.098247)
extrude "Extrusion17" cut sketch "Sketch21 outline for Extrusion17" against normal blind 2
sketch "Sketch22" plane through (0, 6, 0) normal (0, 1, 0) x (1, 0, 0)
  point P0 (0, 0)
sketch "Sketch23" plane through (-11.092548, -0.6, 25.654415) normal (0, 0, 1) x (1, 0, 0)
  circle A0 centre (28.15, 3.7) radius 1
  line L0 (28.9, 2.7) -> (27.4, 2.7)
  circle A1 centre (23.95, 3.7) radius 1
  line L1 (24.7, 2.7) -> (23.2, 2.7)
  line L2 (23.2, 2.7) -> (23.2, 6.6)
  line L3 (28.9, 6.6) -> (28.9, 2.7)
  line L4 (27.4, 5.7) -> (27.4, 2.7)
  line L5 (28.9, 2.7) -> (27.4, 2.7)
  line L6 (27.4, 2.7) -> (27.4, 3.157237)
  line L7 (27.4, 3.157237) -> (28.9, 3.157237)
  line L8 (28.9, 3.157237) -> (28.9, 2.7)
  line L9 (24.7, 2.7) -> (24.7, 5.7)
  line L10 (23.2, 5.7) -> (23.2, 2.7)
  line L11 (24.7, 2.7) -> (23.2, 2.7)
  line L12 (23.2, 2.7) -> (23.2, 3.216306)
  line L13 (23.2, 3.216306) -> (24.7, 3.216306)
  line L14 (24.7, 3.216306) -> (24.7, 2.7)
  point P0 (11.092548, 0.6)
  point P1 (24.7, 3.216306)
  point P2 (23.2, 3.216306)
  dimension "d82" = 1
  dimension "d83" = 2
  dimension "d84" = 2
  dimension "d85" = 1
  dimension "d86" = 0.75
sketch "Sketch23 outline for Extrusion18" plane through (-11.092548, -0.6, 25.654415) normal (0, 0, 1) x (1, 0, 0)
  line L0 (24.7, 3.216306) -> (23.2, 3.216306)
  line L1 (24.7, 2.7) -> (24.7, 3.216306)
  line L2 (23.2, 2.7) -> (24.7, 2.7)
  line L3 (23.2, 3.216306) -> (23.2, 2.7)
  line L4 (27.4, 3.157237) -> (27.4, 2.7)
  line L5 (28.9, 3.157237) -> (27.4, 3.157237)
  line L6 (28.9, 2.7) -> (28.9, 3.157237)
  line L7 (27.4, 2.7) -> (28.9, 2.7)
extrude "Extrusion18" add sketch "Sketch23 outline for Extrusion18" against normal blind 2.5
sketch "Sketch24" plane through (-11.092548, -0.6, 25.654415) normal (0, 0, 1) x (1, 0, 0)
  circle A0 centre (28.15, 3.7) radius 1
  circle A1 centre (23.95, 3.7) radius 1
  line L0 (27.4, 6.6) -> (27.4, 3.157237)
  line L1 (25.4, 2.7) -> (26.7, 2.7)
  line L2 (23.2, 3.216306) -> (23.2, 6.6)
  point P0 (11.092548, 0.6)
  dimension "d89" = 0.75
  dimension "d90" = 2
  dimension "d91" = 1
  dimension "d92" = 0.75
  dimension "d93" = 1
  dimension "d94" = 2
sketch "Sketch24 outline for Extrusion19" plane through (-11.092548, -0.6, 25.654415) normal (0, 0, 1) x (1, 0, 0)
  circle A0 centre (23.95, 3.7) radius 1
  circle A1 centre (28.15, 3.7) radius 1
extrude "Extrusion19" cut sketch "Sketch24 outline for Extrusion19" against normal blind 0.1
sketch "Sketch25" plane through (-11.092548, -0.6, 25.654415) normal (0, 0, 1) x (1, 0, 0)
  line L0 (28.9, 3.157237) -> (28.9, 5.7)
  line L1 (26.7, 6.6) -> (27.4, 6.6)
  line L2 (28.9, 3.157237) -> (27.4, 3.157237)
  line L3 (27.4, 3.157237) -> (27.4, 6.6)
  line L4 (27.4, 6.6) -> (28.9, 6.6)
  line L5 (28.9, 6.6) -> (28.9, 3.157237)
  line L6 (24.7, 3.216306) -> (24.7, 5.7)
  line L7 (23.2, 6.6) -> (23.2, 5.7)
  line L8 (24.7, 3.216306) -> (23.2, 3.216306)
  line L9 (23.2, 3.216306) -> (23.2, 6.6)
  line L10 (23.2, 6.6) -> (24.7, 6.6)
  line L11 (24.7, 6.6) -> (24.7, 3.216306)
  line L12 (25.4, 2.7) -> (26.7, 2.7)
  line L13 (25.4, 6.6) -> (25.4, 2.7)
  line L14 (26.7, 2.7) -> (25.4, 2.7)
  line L15 (25.4, 2.7) -> (25.4, 6.6)
  line L16 (25.4, 6.6) -> (26.7, 6.6)
  line L17 (26.7, 6.6) -> (26.7, 2.7)
  point P0 (11.092548, 0.6)
  point P1 (28.9, 5.7)
sketch "Sketch25 outline for Extrusion20" plane through (-11.092548, -0.6, 25.654415) normal (0, 0, 1) x (1, 0, 0)
  line L0 (23.2, 3.216306) -> (24.7, 3.216306)
  line L1 (24.7, 3.216306) -> (24.7, 6.6)
  line L2 (24.7, 6.6) -> (23.2, 6.6)
  line L3 (23.2, 6.6) -> (23.2, 3.216306)
  line L4 (26.7, 2.7) -> (26.7, 6.6)
  line L5 (25.4, 2.7) -> (26.7, 2.7)
  line L6 (25.4, 6.6) -> (25.4, 2.7)
  line L7 (26.7, 6.6) -> (25.4, 6.6)
  line L8 (28.9, 6.6) -> (27.4, 6.6)
  line L9 (27.4, 6.6) -> (27.4, 3.157237)
  line L10 (27.4, 3.157237) -> (28.9, 3.157237)
  line L11 (28.9, 3.157237) -> (28.9, 6.6)
extrude "Extrusion20" add sketch "Sketch25 outline for Extrusion20" against normal blind 2.5
sketch "Sketch26" plane through (-11.092548, 6, 25.654415) normal (0, 0, 1) x (1, 0, 0)
  arc A0 (27.4, -2.238562) -> (28.9, -2.238562) centre (28.15, -2.9) ccw
  circle A1 centre (28.15, -2.9) radius 0.75
  arc A2 (23.2, -2.238562) -> (24.7, -2.238562) centre (23.95, -2.9) ccw
  circle A3 centre (23.95, -2.9) radius 0.75
  point P0 (11.092548, -6)
  dimension "d99" = 1.5
  dimension "d100" = 1.5
sketch "Sketch26 outline for Extrusion21" plane through (-11.092548, 6, 25.654415) normal (0, 0, 1) x (1, 0, 0)
  circle A0 centre (23.95, -2.9) radius 0.75
  circle A1 centre (28.15, -2.9) radius 0.75
extrude "Extrusion21" cut sketch "Sketch26 outline for Extrusion21" against normal blind 2.5
sketch "Sketch27" plane through (-11.092548, 6, 25.654415) normal (0, 0, 1) x (1, 0, 0)
  circle A0 centre (28.15, -2.9) radius 0.75
  circle A1 centre (28.15, -2.9) radius 1
  arc A2 (23.2, -2.238562) -> (24.7, -2.238562) centre (23.95, -2.9) ccw
  circle A3 centre (23.95, -2.9) radius 1
  point P0 (11.092548, -6)
sketch "Sketch27 outline for Extrusion22" plane through (-11.092548, 6, 25.654415) normal (0, 0, 1) x (1, 0, 0)
  circle A0 centre (23.95, -2.9) radius 1
  circle A1 centre (28.15, -2.9) radius 1
extrude "Extrusion22" cut sketch "Sketch27 outline for Extrusion22" against normal blind 0.1
sketch "Sketch28" plane through (-11.092548, 6, 25.654415) normal (0, 0, 1) x (1, 0, 0)
  line L0 (33.4, 0) -> (33.4, -6.6) projected
  line L1 (33.4, -6.6) -> (0, -6.6)
  line L2 (0, -6.6) -> (0, 0)
  line L3 (0, 0) -> (33.4, 0)
  line L4 (33.4, 0) -> (33.4, -6.6)
  point P0 (11.092548, -6)
sketch "Sketch28 outline for Extrusion23" plane through (-11.092548, 6, 25.654415) normal (0, 0, 1) x (1, 0, 0)
  line L0 (33.4, 0) -> (0, 0)
  line L1 (33.4, -6.6) -> (33.4, 0)
  line L2 (0, -6.6) -> (33.4, -6.6)
  line L3 (0, 0) -> (0, -6.6)
extrude "Extrusion23" add sketch "Sketch28 outline for Extrusion23" along normal blind 0.2
sketch "Sketch29" plane through (21.207452, 6, 23.154415) normal (0, 0, -1) x (-1, 0, 0)
  circle A0 centre (4.15, -2.9) radius 0.75 projected
  circle A1 centre (4.15, -2.9) radius 1
  circle A2 centre (8.35, -2.9) radius 0.75 projected
  circle A3 centre (8.35, -2.9) radius 1
  point P0 (21.207452, -6)
sketch "Sketch30" plane through (-11.092548, 6, 25.854415) normal (0, 0, 1) x (1, 0, 0)
  circle A0 centre (28.15, -2.9) radius 0.75 projected
  circle A1 centre (28.15, -2.9) radius 1
  circle A2 centre (23.95, -2.9) radius 0.75 projected
  circle A3 centre (23.95, -2.9) radius 1
  point P0 (11.092548, -6)
sketch "Sketch30 outline for Extrusion24" plane through (-11.092548, 6, 25.854415) normal (0, 0, 1) x (1, 0, 0)
  circle A0 centre (23.95, -2.9) radius 1
  circle A1 centre (23.95, -2.9) radius 0.75
  circle A2 centre (28.15, -2.9) radius 1
  circle A3 centre (28.15, -2.9) radius 0.75
extrude "Extrusion24" cut sketch "Sketch30 outline for Extrusion24" against normal blind 0.2
sketch "Sketch29 outline for Extrusion25" plane through (21.207452, 6, 23.154415) normal (0, 0, -1) x (-1, 0, 0)
  circle A0 centre (4.15, -2.9) radius 0.75
  circle A1 centre (8.35, -2.9) radius 0.75
extrude "Extrusion25" cut sketch "Sketch29 outline for Extrusion25" along normal up to surface (39.8 mm away)
sketch "Sketch31" plane through (-11.092548, 6, 25.854415) normal (0, 0, 1) x (1, 0, 0)
  circle A0 centre (28.15, -2.9) radius 0.75 projected
  circle A1 centre (28.15, -2.9) radius 0.75
  circle A2 centre (23.95, -2.9) radius 0.75 projected
  circle A3 centre (23.95, -2.9) radius 0.75
  point P0 (11.092548, -6)
sketch "Sketch31 outline for Extrusion26" plane through (-11.092548, 6, 25.854415) normal (0, 0, 1) x (1, 0, 0)
  circle A0 centre (23.95, -2.9) radius 0.75
  circle A1 centre (28.15, -2.9) radius 0.75
extrude "Extrusion26" cut sketch "Sketch31 outline for Extrusion26" against normal blind 3
sketch "Sketch32" plane through (0, 6, 0) normal (0, 1, 0) x (1, 0, 0)
  line L0 (15.96333, -24.407005) -> (18.616219, -24.407005)
  line L1 (18.616219, -24.407005) -> (18.616219, -25.008921)
  line L2 (18.616219, -25.008921) -> (15.96333, -25.008921)
  line L3 (15.96333, -25.008921) -> (15.96333, -24.407005)
  point P0 (0, 0)
sketch "Sketch32 outline for Extrusion27" plane through (0, 6, 0) normal (0, 1, 0) x (1, 0, 0)
  line L0 (15.96333, -24.407005) -> (15.96333, -25.008921)
  line L1 (18.616219, -24.407005) -> (15.96333, -24.407005)
  line L2 (18.616219, -25.008921) -> (18.616219, -24.407005)
  line L3 (15.96333, -25.008921) -> (18.616219, -25.008921)
extrude "Extrusion27" add sketch "Sketch32 outline for Extrusion27" against normal blind 1
sketch "Sketch33" plane through (0, 6, 0) normal (0, 1, 0) x (1, 0, 0)
  line L0 (22.307452, -25.854415) -> (-11.092548, -25.854415)
  line L1 (-11.092548, 17.745585) -> (-11.092548, -25.854415)
  line L2 (22.307452, -25.854415) -> (-11.092548, -25.854415)
  line L3 (-11.092548, -25.854415) -> (-11.092548, 17.745585)
  line L4 (-11.092548, 17.745585) -> (22.307452, 17.745585)
  line L5 (22.307452, 17.745585) -> (22.307452, -25.854415)
  line L6 (21.207452, 16.645585) -> (21.207452, -23.154415)
  line L7 (-9.992548, -23.154415) -> (-9.992548, 16.645585)
  line L8 (21.207452, -23.154415) -> (-9.992548, -23.154415)
  line L9 (-9.992548, -23.154415) -> (-9.992548, 16.645585)
  line L10 (-9.992548, 16.645585) -> (21.207452, 16.645585)
  line L11 (21.207452, 16.645585) -> (21.207452, -23.154415)
  point P0 (0, 0)
sketch "Sketch33 outline for Extrusion28" plane through (0, 6, 0) normal (0, 1, 0) x (1, 0, 0)
  line L0 (22.307452, -25.854415) -> (22.307452, 17.745585)
  line L1 (-11.092548, -25.854415) -> (22.307452, -25.854415)
  line L2 (22.307452, 17.745585) -> (-11.092548, 17.745585)
  line L3 (-11.092548, 17.745585) -> (-11.092548, -25.854415)
  line L4 (21.207452, -23.154415) -> (-9.992548, -23.154415)
  line L5 (21.207452, 16.645585) -> (21.207452, -23.154415)
  line L6 (-9.992548, 16.645585) -> (21.207452, 16.645585)
  line L7 (-9.992548, -23.154415) -> (-9.992548, 16.645585)
extrude "Extrusion28" add sketch "Sketch33 outline for Extrusion28" along normal blind 0.5
sketch "Sketch34" plane through (22.307452, -0.6, -17.745585) normal (0, 0, -1) x (-1, 0, 0)
  line L0 (1.1, 7.1) -> (32.3, 7.1) projected
  line L1 (7.7, 7.1) -> (25.7, 7.1)
  line L2 (25.7, 7.1) -> (25.7, 4.6)
  line L3 (25.7, 4.6) -> (7.7, 4.6)
  line L4 (7.7, 4.6) -> (7.7, 7.1)
  line L5 (0, 0) -> (0, 7.1) projected
  point P0 (22.307452, 0.6)
  point P1 (25.7, 7.1)
  dimension "d117" = 18
  dimension "d118" = 7.7
  dimension "d119" = 2.5
sketch "Sketch34 outline for Extrusion29" plane through (22.307452, -0.6, -17.745585) normal (0, 0, -1) x (-1, 0, 0)
  line L0 (7.7, 4.6) -> (25.7, 4.6)
  line L1 (7.7, 7.1) -> (7.7, 4.6)
  line L2 (25.7, 7.1) -> (7.7, 7.1)
  line L3 (25.7, 4.6) -> (25.7, 7.1)
extrude "Extrusion29" cut sketch "Sketch34 outline for Extrusion29" against normal blind 1.2
fillet "Fillet1" radius 2 2 edges at (-3.3925, 4, -17.1956) (14.6075, 4, -17.1956)
sketch "Sketch35" plane through (-11.092548, 6, 25.854415) normal (0, 0, 1) x (1, 0, 0)
  line L0 (0, -6.6) -> (33.4, -6.6)
  circle A0 centre (28.15, -2.9) radius 1
  line L1 (27.154579, -6.6) -> (29.15, -6.6)
  line L2 (29.15, -6.6) -> (29.15, -2.9)
  line L3 (29.15, -2.9) -> (27.154579, -2.9)
  line L4 (27.154579, -2.9) -> (27.154579, -6.6)
  circle A1 centre (23.95, -2.9) radius 1
  line L5 (22.95, -2.9) -> (24.95, -2.9)
  line L6 (24.95, -2.9) -> (24.95, -6.6)
  line L7 (24.95, -6.6) -> (22.95, -6.6)
  line L8 (22.95, -6.6) -> (22.95, -2.9)
  point P0 (11.092548, -6)
  point P1 (27.154579, -2.995585)
sketch "Sketch35 outline for Extrusion30" plane through (-11.092548, 6, 25.854415) normal (0, 0, 1) x (1, 0, 0)
  line L0 (27.154579, -2.995585) -> (27.154579, -6.6)
  arc A0 (29.15, -2.9) -> (27.154579, -2.995585) centre (28.15, -2.9) cw
  line L1 (29.15, -6.6) -> (29.15, -2.9)
  line L2 (27.154579, -6.6) -> (29.15, -6.6)
  line L3 (22.95, -2.9) -> (22.95, -6.6)
  arc A1 (24.95, -2.9) -> (22.95, -2.9) centre (23.95, -2.9) cw
  line L4 (24.95, -6.6) -> (24.95, -2.9)
  line L5 (22.95, -6.6) -> (24.95, -6.6)
extrude "Extrusion30" cut sketch "Sketch35 outline for Extrusion30" against normal blind 0.3
sketch "Sketch36" plane through (0, 6.5, 0) normal (0, 1, 0) x (1, 0, 0)
  point P0 (0, 0)
sketch "Sketch37" plane through (0, 6.5, 0) normal (0, 1, 0) x (1, 0, 0)
  point P0 (0, 0)
sketch "Sketch38" plane through (-11.092548, 6, 25.854415) normal (0, 0, 1) x (1, 0, 0)
  circle A0 centre (28.15, -2.9) radius 0.75 projected
  circle A1 centre (28.15, -2.9) radius 1
  circle A2 centre (23.95, -2.9) radius 0.75 projected
  circle A3 centre (23.95, -2.9) radius 1
  point P0 (11.092548, -6)
  dimension "d125" = 2
sketch "Sketch38 outline for Extrusion31" plane through (-11.092548, 6, 25.854415) normal (0, 0, 1) x (1, 0, 0)
  circle A0 centre (23.95, -2.9) radius 1
  circle A1 centre (23.95, -2.9) radius 0.75
  circle A2 centre (28.15, -2.9) radius 1
  circle A3 centre (28.15, -2.9) radius 0.75
extrude "Extrusion31" cut sketch "Sketch38 outline for Extrusion31" against normal blind 0.6
properties part number "battery-holder-v2"
